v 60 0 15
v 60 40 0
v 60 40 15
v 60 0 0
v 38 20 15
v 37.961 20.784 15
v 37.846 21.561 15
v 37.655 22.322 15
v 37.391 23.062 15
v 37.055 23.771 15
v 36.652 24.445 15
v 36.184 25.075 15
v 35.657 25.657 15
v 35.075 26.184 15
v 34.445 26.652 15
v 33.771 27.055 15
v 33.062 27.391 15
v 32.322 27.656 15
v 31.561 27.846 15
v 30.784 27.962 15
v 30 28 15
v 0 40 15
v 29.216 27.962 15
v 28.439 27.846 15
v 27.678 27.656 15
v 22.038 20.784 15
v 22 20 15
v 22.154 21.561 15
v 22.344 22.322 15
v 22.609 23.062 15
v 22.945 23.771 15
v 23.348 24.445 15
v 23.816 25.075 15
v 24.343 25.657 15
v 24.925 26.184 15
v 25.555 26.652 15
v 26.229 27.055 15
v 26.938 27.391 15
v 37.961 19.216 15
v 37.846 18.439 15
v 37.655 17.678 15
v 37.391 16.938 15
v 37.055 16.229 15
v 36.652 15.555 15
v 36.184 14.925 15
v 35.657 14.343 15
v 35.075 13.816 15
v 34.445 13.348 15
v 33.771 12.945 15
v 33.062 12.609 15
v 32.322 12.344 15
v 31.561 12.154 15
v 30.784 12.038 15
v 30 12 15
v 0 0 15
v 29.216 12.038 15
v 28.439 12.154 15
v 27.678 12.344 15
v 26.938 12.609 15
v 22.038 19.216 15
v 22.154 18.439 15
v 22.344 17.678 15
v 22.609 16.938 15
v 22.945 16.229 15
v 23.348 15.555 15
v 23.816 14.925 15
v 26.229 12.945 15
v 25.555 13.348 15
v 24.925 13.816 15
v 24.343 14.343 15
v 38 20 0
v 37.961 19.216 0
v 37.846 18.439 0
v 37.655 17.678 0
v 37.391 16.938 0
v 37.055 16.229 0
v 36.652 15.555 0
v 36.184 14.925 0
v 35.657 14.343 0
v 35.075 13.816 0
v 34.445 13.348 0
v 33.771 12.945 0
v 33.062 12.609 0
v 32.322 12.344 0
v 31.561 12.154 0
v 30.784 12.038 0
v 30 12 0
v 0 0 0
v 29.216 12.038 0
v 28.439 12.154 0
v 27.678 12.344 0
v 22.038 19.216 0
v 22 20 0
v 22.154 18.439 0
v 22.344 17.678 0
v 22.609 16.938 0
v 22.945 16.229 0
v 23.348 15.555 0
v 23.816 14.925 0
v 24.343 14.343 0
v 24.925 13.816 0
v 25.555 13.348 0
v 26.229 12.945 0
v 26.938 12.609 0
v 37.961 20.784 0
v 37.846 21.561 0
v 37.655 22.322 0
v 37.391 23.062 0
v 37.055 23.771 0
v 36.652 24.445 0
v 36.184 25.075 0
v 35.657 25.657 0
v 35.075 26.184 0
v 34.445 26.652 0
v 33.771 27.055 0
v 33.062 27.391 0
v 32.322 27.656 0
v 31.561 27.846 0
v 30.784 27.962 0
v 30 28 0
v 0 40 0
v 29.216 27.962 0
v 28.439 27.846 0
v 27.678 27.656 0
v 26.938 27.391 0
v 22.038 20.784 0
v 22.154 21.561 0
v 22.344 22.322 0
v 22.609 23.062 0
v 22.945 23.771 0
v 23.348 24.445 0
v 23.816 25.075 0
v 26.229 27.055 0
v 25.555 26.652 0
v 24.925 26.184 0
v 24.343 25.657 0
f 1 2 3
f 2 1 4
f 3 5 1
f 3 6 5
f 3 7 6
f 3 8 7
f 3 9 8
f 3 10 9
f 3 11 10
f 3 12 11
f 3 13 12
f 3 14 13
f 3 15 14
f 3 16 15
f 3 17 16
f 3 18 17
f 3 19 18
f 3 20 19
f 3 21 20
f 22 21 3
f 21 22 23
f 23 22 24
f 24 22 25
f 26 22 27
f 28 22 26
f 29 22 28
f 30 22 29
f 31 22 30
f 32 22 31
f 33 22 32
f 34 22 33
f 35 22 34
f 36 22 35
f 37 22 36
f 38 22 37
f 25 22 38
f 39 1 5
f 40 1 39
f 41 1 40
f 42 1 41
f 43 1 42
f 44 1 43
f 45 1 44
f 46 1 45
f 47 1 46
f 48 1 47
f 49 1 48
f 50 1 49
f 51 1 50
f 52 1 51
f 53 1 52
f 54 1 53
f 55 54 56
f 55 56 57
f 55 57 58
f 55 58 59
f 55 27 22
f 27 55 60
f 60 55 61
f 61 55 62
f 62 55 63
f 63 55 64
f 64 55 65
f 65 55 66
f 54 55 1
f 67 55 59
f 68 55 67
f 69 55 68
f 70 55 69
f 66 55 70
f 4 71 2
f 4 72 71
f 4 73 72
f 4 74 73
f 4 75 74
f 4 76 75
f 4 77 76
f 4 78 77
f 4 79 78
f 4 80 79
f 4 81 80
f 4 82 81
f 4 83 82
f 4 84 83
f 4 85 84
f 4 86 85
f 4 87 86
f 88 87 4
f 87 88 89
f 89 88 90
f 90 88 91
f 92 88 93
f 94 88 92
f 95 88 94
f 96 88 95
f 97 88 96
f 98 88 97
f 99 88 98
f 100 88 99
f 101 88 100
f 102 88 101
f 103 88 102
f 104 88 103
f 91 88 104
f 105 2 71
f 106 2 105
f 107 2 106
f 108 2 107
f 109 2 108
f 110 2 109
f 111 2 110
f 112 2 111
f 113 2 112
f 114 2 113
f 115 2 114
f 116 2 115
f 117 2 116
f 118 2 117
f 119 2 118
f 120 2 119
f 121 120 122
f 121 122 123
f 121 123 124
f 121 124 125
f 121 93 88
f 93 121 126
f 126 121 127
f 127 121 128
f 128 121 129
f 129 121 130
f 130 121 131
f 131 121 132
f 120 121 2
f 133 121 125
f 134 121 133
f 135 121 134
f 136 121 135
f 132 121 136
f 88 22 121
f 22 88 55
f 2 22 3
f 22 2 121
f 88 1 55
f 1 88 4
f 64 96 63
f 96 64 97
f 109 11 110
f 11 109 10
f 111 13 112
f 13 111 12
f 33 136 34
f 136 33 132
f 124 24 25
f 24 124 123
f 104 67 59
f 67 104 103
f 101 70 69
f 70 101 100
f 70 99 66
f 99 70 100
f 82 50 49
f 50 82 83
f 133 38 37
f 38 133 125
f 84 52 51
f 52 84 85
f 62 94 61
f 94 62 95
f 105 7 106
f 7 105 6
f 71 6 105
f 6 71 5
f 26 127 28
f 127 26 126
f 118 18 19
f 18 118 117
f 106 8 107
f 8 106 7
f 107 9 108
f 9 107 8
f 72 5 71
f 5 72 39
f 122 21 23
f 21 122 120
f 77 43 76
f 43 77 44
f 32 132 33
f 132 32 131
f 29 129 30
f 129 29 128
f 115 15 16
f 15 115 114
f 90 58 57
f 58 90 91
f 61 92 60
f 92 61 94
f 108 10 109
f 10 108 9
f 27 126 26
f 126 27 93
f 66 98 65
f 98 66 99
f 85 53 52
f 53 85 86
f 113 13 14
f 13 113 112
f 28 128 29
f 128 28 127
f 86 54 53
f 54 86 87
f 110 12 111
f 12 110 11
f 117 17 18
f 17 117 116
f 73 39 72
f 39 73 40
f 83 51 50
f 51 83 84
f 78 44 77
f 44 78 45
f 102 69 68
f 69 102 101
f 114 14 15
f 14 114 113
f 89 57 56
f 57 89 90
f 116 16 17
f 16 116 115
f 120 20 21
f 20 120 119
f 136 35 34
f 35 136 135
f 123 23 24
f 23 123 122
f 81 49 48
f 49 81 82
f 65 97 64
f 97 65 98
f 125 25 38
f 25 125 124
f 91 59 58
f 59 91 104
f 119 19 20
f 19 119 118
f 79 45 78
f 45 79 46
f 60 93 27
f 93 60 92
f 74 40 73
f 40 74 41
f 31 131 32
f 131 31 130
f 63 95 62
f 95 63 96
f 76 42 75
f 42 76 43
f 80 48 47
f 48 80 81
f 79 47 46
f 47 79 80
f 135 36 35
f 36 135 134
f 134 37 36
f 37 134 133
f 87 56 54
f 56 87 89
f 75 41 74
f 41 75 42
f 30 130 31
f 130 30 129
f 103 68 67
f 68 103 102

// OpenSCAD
// 圓孔板（holeplate）— 由 ortho_lib_work/objects.py 產生，請改 objects.py 後重建
// 平板 60×40×15，正中央有一個直徑 16 的垂直貫穿孔。
difference() {
  union() {
    translate([0,0,0]) cube([60,40,15]);
  }
  union() {
    multmatrix([[1,0,0,0],[0,1,0,0],[0,0,1,-1],[0,0,0,1]]) translate([30,20,0]) cylinder(h=17, r=8, $fn=64);
  }
}
